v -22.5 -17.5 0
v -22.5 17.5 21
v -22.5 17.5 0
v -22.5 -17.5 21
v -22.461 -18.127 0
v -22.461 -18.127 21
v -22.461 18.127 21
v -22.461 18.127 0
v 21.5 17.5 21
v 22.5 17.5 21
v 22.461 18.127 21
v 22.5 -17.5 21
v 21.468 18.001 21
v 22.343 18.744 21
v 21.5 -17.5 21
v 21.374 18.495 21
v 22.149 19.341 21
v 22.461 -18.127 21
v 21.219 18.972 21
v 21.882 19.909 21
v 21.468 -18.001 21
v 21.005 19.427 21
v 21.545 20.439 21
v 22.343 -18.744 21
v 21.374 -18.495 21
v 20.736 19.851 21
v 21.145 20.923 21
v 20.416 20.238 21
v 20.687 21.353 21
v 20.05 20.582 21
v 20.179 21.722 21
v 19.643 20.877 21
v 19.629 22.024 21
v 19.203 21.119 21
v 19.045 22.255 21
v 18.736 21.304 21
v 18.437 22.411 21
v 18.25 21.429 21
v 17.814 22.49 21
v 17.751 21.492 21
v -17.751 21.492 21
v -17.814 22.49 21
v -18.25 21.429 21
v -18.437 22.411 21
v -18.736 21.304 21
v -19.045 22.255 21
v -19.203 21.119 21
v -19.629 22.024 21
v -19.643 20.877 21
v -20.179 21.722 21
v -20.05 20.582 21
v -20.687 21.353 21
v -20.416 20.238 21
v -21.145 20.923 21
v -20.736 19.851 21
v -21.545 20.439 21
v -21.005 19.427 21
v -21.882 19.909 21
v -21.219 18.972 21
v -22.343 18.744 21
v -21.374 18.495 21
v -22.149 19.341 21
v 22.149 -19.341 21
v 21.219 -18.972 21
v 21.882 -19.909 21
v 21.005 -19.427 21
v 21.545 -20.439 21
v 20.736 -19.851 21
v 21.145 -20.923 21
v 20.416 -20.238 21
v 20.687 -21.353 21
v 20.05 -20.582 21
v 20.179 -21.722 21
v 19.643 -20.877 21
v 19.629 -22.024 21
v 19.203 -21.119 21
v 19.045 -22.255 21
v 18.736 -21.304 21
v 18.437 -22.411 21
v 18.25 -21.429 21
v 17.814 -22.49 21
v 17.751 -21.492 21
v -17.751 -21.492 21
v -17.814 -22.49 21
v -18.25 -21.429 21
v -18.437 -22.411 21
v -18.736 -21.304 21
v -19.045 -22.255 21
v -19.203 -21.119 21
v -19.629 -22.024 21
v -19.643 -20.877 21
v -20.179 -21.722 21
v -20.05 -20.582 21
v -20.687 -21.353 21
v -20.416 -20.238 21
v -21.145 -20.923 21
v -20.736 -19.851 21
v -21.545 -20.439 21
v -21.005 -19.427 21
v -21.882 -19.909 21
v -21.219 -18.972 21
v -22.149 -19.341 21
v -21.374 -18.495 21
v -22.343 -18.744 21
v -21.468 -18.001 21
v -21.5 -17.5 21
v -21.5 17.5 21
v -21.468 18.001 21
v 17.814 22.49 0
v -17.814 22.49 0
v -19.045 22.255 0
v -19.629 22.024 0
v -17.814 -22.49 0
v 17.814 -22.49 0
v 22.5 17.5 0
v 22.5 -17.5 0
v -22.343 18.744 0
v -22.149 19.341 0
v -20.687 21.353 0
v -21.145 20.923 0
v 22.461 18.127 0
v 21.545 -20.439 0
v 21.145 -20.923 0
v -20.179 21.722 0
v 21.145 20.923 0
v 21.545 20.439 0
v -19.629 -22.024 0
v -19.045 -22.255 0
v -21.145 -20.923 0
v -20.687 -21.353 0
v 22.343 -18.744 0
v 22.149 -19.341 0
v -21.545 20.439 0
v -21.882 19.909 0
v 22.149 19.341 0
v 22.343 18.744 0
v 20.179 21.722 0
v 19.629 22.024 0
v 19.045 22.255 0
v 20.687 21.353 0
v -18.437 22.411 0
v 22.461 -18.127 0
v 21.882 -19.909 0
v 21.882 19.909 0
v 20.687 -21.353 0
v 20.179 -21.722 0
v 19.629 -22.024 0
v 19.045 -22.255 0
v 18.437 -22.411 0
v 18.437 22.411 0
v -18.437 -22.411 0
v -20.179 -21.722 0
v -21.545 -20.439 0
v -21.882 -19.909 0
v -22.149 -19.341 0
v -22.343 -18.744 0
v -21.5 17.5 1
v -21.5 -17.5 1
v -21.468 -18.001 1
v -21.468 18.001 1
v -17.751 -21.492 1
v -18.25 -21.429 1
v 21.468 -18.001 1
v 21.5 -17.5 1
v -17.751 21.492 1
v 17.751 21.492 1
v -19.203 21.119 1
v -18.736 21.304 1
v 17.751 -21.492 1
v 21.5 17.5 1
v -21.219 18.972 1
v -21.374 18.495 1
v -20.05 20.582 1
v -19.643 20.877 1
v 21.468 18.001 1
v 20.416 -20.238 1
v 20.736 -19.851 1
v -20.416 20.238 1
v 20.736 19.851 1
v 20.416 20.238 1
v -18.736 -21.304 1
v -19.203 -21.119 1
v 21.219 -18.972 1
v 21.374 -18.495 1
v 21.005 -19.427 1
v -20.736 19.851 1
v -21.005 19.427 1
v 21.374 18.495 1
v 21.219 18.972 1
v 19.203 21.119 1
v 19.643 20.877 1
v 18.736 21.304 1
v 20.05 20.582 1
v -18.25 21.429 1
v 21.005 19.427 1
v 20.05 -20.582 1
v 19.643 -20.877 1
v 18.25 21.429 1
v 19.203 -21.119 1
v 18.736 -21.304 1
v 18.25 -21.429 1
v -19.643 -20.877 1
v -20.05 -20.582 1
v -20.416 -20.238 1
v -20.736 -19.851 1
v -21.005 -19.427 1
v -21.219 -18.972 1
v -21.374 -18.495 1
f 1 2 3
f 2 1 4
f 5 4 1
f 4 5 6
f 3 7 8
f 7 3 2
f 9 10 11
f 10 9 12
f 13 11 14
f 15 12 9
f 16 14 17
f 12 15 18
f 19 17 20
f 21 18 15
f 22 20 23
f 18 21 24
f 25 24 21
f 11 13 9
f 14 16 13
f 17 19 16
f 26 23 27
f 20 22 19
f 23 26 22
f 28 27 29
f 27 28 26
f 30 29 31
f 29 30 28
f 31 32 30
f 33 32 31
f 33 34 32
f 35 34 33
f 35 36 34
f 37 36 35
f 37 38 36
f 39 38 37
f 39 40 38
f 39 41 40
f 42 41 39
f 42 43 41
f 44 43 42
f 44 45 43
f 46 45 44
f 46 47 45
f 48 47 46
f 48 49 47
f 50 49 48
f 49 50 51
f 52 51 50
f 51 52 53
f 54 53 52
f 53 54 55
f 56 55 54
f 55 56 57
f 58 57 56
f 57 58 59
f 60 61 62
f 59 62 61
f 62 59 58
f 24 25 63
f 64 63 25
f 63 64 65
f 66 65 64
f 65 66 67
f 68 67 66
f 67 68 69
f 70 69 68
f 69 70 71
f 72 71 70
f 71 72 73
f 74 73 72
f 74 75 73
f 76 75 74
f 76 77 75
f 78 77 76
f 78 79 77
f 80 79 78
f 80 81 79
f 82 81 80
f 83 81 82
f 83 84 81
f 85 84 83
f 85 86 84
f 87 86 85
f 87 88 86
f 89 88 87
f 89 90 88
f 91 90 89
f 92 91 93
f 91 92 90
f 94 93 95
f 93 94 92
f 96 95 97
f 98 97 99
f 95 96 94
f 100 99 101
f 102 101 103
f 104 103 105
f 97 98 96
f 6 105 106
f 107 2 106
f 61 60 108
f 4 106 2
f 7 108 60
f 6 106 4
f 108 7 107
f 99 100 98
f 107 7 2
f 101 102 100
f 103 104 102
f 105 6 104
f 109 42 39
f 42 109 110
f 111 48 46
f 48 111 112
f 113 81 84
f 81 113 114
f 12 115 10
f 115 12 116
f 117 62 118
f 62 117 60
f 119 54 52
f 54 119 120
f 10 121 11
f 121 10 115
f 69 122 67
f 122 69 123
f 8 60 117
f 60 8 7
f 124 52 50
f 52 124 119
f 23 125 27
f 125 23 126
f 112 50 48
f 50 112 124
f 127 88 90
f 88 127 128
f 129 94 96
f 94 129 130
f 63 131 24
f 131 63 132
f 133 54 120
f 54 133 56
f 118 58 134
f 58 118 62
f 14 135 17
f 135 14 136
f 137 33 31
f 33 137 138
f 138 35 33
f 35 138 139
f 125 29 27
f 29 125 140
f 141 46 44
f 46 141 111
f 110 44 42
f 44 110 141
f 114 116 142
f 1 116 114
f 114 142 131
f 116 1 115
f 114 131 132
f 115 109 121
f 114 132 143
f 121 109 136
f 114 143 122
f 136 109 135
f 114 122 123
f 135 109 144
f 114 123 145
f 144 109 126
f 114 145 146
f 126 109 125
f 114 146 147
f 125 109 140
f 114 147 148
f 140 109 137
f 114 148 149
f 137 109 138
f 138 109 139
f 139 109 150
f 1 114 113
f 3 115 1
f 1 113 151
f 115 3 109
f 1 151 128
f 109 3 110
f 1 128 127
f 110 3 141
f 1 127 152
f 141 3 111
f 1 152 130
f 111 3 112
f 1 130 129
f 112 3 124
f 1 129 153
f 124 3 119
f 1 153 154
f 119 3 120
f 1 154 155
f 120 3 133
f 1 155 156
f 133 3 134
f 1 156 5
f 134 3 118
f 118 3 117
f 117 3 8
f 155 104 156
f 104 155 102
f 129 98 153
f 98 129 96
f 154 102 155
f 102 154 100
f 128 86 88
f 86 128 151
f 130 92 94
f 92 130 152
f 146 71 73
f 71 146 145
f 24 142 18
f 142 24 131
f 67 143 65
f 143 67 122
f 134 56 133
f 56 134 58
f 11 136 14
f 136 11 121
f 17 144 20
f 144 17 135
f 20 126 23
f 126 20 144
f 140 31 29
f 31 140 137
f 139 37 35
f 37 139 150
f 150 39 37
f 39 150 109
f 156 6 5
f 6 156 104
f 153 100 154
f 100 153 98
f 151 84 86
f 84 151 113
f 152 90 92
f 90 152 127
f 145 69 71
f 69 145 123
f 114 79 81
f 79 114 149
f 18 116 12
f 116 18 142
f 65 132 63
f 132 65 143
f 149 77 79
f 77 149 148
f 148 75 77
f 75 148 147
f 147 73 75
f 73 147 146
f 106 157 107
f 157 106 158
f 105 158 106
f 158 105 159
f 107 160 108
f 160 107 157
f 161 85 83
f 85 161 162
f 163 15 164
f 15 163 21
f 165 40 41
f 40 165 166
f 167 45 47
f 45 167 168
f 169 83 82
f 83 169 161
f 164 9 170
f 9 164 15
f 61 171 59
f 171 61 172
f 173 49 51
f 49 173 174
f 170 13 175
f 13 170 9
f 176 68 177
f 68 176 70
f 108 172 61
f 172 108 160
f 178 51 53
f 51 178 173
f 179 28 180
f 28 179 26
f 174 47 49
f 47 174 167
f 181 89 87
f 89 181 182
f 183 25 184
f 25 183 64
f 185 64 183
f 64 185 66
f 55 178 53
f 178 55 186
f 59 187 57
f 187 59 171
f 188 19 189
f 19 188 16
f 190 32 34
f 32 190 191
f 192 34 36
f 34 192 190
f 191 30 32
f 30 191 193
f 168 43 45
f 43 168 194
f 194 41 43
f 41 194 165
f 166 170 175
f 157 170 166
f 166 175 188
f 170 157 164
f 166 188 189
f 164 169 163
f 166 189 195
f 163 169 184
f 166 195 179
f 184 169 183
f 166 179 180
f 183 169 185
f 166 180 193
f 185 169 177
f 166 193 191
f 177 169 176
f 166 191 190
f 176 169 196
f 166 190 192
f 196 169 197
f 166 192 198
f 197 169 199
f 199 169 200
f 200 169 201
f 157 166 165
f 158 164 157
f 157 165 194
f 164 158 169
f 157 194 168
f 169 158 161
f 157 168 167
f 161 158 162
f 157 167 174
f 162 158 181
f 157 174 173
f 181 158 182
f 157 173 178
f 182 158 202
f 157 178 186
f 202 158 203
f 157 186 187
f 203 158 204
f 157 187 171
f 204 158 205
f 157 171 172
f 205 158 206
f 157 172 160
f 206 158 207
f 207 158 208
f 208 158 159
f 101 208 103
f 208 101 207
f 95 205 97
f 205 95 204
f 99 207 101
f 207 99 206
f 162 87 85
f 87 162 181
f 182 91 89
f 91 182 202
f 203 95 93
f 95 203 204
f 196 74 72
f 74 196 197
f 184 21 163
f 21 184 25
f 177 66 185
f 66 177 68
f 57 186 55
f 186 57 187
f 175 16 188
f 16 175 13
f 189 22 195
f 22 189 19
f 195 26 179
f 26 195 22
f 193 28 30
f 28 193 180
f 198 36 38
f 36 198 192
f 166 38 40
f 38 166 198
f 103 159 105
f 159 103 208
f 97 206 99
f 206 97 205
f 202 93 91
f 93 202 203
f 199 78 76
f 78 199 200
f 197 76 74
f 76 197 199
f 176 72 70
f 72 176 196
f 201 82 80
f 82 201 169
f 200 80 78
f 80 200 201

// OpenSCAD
$fn = 50;


difference() {
	union() {
		hull() {
			translate(v = [-17.5000000000, 17.5000000000, 0]) {
				cylinder(h = 21, r = 5);
			}
			translate(v = [17.5000000000, 17.5000000000, 0]) {
				cylinder(h = 21, r = 5);
			}
			translate(v = [-17.5000000000, -17.5000000000, 0]) {
				cylinder(h = 21, r = 5);
			}
			translate(v = [17.5000000000, -17.5000000000, 0]) {
				cylinder(h = 21, r = 5);
			}
		}
	}
	union() {
		translate(v = [0, 0, 1]) {
			#hull() {
				translate(v = [-17.5000000000, 17.5000000000, 0]) {
					cylinder(h = 20, r = 4);
				}
				translate(v = [17.5000000000, 17.5000000000, 0]) {
					cylinder(h = 20, r = 4);
				}
				translate(v = [-17.5000000000, -17.5000000000, 0]) {
					cylinder(h = 20, r = 4);
				}
				translate(v = [17.5000000000, -17.5000000000, 0]) {
					cylinder(h = 20, r = 4);
				}
			}
		}
	}
}
